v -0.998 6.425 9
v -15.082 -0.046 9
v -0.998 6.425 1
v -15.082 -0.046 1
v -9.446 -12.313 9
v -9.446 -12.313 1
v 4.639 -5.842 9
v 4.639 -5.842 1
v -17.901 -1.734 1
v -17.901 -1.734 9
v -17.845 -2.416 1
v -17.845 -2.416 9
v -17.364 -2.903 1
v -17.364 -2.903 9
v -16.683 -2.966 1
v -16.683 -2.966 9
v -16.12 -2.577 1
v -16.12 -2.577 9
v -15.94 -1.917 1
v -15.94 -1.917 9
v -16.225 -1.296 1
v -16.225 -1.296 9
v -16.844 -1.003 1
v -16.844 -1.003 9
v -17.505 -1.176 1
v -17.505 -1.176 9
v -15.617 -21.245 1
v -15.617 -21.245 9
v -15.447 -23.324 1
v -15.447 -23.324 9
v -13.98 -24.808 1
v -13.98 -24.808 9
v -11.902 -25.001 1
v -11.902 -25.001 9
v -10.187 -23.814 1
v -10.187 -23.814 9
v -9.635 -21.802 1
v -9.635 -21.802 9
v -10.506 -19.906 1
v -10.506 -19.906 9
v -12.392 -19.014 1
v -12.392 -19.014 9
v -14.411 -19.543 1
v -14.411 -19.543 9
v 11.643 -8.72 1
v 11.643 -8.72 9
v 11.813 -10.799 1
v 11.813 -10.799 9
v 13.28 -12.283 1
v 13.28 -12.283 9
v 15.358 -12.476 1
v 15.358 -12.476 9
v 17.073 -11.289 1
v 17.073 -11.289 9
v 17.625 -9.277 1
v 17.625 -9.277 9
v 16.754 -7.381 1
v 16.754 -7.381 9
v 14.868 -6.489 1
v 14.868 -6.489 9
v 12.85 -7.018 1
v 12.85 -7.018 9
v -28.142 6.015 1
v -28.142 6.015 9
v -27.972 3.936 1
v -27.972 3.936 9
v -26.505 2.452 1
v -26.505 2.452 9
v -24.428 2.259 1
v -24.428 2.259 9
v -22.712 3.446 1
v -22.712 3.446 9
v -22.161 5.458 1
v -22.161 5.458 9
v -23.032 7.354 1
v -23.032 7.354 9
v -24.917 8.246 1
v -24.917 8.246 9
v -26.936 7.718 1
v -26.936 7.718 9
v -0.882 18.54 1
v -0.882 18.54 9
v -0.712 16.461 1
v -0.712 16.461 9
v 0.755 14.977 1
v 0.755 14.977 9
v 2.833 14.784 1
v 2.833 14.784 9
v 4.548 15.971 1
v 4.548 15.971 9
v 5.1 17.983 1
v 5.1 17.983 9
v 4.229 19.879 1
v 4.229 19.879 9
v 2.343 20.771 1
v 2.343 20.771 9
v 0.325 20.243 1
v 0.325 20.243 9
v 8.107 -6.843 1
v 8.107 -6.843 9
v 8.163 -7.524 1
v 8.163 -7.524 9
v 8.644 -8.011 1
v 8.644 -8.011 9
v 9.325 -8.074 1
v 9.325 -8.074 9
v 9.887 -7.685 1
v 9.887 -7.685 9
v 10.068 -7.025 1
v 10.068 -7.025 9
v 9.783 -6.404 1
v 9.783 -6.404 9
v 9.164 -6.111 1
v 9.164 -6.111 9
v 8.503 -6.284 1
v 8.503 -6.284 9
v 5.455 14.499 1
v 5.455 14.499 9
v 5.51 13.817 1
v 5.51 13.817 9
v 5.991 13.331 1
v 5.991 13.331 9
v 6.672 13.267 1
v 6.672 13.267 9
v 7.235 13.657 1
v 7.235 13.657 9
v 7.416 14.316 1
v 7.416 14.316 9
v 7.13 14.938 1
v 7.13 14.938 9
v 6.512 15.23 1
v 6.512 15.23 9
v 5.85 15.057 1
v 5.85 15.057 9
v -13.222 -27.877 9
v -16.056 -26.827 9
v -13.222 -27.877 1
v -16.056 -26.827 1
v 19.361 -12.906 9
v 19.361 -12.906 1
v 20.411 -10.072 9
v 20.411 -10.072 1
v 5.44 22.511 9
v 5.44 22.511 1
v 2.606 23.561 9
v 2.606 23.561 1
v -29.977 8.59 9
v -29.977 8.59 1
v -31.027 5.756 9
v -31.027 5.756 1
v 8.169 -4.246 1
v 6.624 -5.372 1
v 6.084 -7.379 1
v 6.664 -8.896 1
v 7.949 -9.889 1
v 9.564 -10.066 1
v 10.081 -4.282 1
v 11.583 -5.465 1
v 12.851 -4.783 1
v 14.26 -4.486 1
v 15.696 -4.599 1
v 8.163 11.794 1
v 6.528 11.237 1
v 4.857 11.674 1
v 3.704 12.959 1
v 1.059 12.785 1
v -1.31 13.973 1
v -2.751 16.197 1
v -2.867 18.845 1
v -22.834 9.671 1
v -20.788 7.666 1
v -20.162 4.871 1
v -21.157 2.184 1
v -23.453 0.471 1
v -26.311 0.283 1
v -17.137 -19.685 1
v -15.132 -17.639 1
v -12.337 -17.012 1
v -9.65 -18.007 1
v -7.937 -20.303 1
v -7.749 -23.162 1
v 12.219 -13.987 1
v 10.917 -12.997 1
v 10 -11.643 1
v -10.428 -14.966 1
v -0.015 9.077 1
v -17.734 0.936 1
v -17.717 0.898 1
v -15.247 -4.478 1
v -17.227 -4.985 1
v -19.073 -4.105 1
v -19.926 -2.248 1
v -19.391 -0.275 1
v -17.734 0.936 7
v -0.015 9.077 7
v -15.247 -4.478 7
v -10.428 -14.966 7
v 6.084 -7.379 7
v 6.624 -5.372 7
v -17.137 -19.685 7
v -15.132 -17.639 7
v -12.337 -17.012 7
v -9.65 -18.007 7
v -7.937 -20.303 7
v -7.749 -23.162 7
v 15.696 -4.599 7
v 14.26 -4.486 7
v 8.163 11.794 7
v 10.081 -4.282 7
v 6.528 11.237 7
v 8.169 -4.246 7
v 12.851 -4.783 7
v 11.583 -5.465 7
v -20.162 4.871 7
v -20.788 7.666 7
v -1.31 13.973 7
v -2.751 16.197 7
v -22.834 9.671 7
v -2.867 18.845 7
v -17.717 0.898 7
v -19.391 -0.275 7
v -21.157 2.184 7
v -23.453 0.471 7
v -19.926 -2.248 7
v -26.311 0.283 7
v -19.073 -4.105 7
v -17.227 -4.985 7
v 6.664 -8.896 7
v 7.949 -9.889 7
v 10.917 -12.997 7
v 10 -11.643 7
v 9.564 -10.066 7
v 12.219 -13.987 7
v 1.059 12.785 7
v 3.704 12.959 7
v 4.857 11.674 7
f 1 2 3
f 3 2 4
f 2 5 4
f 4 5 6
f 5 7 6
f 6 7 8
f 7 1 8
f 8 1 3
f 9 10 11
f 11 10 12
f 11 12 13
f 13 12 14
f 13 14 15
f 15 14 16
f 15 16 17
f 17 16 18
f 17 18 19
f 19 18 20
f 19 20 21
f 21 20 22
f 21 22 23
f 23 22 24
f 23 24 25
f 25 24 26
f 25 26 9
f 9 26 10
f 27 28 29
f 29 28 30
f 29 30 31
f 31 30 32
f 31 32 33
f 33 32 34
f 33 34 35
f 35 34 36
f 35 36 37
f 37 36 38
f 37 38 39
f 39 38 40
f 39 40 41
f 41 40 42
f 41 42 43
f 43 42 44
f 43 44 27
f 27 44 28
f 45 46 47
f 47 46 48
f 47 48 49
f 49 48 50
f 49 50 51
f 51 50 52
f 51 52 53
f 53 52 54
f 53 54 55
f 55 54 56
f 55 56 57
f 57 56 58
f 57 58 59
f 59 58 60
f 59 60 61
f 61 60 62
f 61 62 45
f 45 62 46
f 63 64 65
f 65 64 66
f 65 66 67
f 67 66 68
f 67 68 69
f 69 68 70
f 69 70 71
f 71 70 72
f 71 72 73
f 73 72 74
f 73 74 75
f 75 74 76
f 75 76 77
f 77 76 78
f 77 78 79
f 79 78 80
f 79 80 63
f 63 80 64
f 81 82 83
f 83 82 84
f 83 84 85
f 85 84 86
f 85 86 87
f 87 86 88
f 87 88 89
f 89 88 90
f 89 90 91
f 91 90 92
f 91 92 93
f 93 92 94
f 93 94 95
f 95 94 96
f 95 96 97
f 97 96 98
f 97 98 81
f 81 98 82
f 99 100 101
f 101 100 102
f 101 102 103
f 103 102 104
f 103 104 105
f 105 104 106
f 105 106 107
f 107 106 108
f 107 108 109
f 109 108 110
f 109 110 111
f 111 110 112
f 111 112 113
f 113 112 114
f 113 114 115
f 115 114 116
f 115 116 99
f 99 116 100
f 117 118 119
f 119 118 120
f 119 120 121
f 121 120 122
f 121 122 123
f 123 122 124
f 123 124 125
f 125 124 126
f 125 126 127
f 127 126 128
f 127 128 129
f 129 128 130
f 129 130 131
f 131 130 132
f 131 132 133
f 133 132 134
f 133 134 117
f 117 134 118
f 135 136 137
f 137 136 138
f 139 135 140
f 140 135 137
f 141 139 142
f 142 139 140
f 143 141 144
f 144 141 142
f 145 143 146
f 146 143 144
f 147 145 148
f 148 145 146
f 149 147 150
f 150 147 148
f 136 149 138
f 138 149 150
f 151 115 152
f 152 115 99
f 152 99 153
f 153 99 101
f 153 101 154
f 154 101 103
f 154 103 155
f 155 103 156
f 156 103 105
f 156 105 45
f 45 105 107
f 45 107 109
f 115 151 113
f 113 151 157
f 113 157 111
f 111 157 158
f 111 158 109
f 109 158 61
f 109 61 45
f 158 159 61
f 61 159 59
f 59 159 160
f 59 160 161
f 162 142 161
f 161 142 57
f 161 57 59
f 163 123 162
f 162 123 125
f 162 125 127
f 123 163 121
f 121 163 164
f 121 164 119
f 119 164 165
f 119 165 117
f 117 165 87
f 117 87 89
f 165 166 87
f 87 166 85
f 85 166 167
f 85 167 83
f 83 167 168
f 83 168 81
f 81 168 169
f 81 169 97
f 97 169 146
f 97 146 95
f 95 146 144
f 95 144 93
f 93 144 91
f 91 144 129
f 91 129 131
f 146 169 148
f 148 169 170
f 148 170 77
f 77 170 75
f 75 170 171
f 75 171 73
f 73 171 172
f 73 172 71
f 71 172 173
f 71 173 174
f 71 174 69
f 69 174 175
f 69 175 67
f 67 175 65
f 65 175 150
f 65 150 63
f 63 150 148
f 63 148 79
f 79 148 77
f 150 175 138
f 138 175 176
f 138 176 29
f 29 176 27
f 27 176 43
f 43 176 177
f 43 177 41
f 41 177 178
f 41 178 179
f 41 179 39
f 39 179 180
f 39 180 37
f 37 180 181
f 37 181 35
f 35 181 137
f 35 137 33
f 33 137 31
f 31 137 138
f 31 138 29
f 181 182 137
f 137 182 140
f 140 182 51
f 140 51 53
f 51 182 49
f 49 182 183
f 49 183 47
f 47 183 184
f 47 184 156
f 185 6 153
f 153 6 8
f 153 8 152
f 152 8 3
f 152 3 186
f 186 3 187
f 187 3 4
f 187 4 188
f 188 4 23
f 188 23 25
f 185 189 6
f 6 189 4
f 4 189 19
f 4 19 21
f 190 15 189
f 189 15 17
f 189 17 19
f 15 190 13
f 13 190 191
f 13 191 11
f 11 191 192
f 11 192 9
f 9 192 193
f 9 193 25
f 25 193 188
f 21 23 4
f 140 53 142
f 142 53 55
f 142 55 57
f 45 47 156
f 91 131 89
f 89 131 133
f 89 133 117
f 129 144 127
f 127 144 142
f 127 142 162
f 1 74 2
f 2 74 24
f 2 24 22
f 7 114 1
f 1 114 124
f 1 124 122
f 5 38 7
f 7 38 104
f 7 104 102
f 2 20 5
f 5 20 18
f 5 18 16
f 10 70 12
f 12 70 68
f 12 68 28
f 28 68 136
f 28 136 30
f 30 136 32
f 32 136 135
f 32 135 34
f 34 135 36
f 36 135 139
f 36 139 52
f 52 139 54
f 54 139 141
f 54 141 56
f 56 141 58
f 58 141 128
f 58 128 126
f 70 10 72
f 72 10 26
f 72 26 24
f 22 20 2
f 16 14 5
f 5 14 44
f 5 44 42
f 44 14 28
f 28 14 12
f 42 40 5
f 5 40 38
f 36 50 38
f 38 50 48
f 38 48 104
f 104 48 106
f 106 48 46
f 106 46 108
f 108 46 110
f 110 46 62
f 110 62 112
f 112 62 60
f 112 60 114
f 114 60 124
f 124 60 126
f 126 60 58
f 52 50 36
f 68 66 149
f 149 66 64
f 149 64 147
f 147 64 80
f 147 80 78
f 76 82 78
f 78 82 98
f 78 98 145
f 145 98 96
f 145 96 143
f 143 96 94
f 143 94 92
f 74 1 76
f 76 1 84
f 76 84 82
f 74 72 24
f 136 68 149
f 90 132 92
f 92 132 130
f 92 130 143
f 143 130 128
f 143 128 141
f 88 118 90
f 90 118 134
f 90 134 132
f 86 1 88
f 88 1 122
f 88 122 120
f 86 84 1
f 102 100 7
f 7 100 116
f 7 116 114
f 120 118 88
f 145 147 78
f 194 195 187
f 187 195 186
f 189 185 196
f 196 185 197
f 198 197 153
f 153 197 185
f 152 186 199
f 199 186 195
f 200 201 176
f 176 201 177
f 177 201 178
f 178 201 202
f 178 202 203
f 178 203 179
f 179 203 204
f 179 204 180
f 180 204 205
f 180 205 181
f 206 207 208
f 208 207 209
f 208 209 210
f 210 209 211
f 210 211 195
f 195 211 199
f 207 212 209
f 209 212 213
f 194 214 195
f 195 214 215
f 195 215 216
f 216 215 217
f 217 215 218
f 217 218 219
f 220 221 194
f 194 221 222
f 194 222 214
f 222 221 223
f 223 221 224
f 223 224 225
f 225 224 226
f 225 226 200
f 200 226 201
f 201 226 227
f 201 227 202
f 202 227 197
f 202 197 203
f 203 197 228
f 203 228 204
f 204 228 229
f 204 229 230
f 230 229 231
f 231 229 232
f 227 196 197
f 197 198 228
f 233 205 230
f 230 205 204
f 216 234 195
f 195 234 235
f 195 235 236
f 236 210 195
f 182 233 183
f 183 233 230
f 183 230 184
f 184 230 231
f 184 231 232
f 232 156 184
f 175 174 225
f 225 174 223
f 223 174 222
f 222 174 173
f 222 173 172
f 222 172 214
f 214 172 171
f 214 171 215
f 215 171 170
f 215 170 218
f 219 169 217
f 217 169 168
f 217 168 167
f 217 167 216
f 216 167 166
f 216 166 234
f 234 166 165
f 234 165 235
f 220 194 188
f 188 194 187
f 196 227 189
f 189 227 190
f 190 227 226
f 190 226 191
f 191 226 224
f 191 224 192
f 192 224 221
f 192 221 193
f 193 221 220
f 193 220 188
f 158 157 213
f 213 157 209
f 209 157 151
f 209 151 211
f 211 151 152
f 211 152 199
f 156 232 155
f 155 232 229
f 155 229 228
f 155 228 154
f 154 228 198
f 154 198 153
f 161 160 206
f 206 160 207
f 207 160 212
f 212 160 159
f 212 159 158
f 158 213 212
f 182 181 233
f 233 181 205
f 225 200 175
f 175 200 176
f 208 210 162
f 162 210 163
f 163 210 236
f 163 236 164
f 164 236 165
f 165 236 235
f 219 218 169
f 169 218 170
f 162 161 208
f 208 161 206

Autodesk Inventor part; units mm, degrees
ref_plane "YZ Plane" through (0, 0, 0) normal (1, 0, 0) x (0, 1, 0)
ref_plane "XZ Plane" through (0, 0, 0) normal (0, 1, 0) x (-1, 0, 0)
ref_plane "XY Plane" through (0, 0, 0) normal (0, 0, 1) x (1, 0, 0)
ref_plane "Work Plane1" through (0, 0, 0) normal (0, 0, 1) x (1, 0, 0)
ref_plane "Work Plane2" through (13.4154, -42.9082, 9) normal (0, 0, -1) x (-0.9086751, -0.417504, 0)
sketch "Sketch1" plane through (13.4154, -42.9082, 9) normal (0, 0, -1) x (-0.9086751, -0.417504, 0)
  line L0 (20.066, 26.9166) -> (20.066, 62.7742) projected
  line L1 (20.066, 62.7742) -> (17.9288, 64.9114) projected
  line L2 (17.9288, 64.9114) -> (-17.9288, 64.9114) projected
  line L3 (-17.9288, 64.9114) -> (-20.066, 62.7742) projected
  line L4 (-20.066, 62.7742) -> (-20.066, 26.9166) projected
  line L5 (-20.066, 26.9166) -> (-17.9288, 24.7794) projected
  line L6 (-17.9288, 24.7794) -> (17.9288, 24.7794) projected
  line L7 (17.9288, 24.7794) -> (20.066, 26.9166) projected
  circle A0 centre (-15, 59.8454) radius 3.2639 projected
  circle A1 centre (15, 59.8454) radius 3.2639 projected
  circle A2 centre (-15, 29.8455) radius 3.2639 projected
  circle A3 centre (15, 29.8455) radius 3.2639 projected
  circle A4 centre (0, 44.8454) radius 13.3985 projected
  line L8 (8, 50.8454) -> (-7.5, 50.8454) construction
  line L9 (-7.5, 50.8454) -> (-7.5, 37.3454) construction
  line L10 (-7.5, 37.3454) -> (8, 37.3454) construction
  line L11 (8, 37.3454) -> (8, 50.8454) construction
  circle A5 centre (-17.5, 54.8454) radius 1 construction
  circle A6 centre (-11, 34.3454) radius 1 construction
  circle A7 centre (10.5, 49.8454) radius 1 construction
  arc A8 (-15.8555, 56.5454) -> (-16.8555, 57.5454) centre (-16.8555, 56.5454) ccw construction
  line L12 (-15.8555, 56.5454) -> (-15.8555, 53.8078) construction
  arc A9 (-15.8555, 53.8078) -> (-14.8555, 52.8078) centre (-14.8555, 53.8078) ccw construction
  line L13 (-14.8555, 52.8078) -> (12, 52.8078) construction
  arc A10 (13, 51.8078) -> (12, 52.8078) centre (12, 51.8078) ccw construction
  line L14 (13, 51.8078) -> (13, 49.2425) construction
  arc A11 (12, 48.2425) -> (13, 49.2425) centre (12, 49.2425) ccw construction
  line L15 (12, 48.2425) -> (11, 48.2425) construction
  arc A12 (11, 48.2425) -> (10, 47.2425) centre (11, 47.2425) ccw construction
  line L16 (10, 47.2425) -> (10, 35.7078) construction
  line L17 (10, 35.7078) -> (-8.4723, 35.7078) construction
  arc A13 (-8.4723, 35.7078) -> (-9.4723, 34.7078) centre (-8.4723, 34.7078) ccw construction
  line L18 (-9.4723, 34.7078) -> (-9.4723, 32.8454) construction
  arc A14 (-10.4723, 31.8454) -> (-9.4723, 32.8454) centre (-10.4723, 32.8454) ccw construction
  line L19 (-10.4723, 31.8454) -> (-20, 31.8454) construction
  line L20 (-20, 31.8454) -> (-20, 57.5454) construction
  line L21 (-20, 57.5454) -> (-16.8555, 57.5454) construction
  line L22 (8, 37.3454) -> (-7.5, 37.3454)
  line L23 (-7.5, 37.3454) -> (-7.5, 50.8454)
  line L24 (-7.5, 50.8454) -> (8, 50.8454)
  line L25 (8, 50.8454) -> (8, 37.3454)
  circle A15 centre (10.5, 49.8454) radius 1
  circle A16 centre (-17.5, 54.8454) radius 1
  circle A17 centre (-11, 34.3454) radius 1
  circle A18 centre (15, 29.8455) radius 3.05
  circle A19 centre (-15, 29.8455) radius 3.05
  circle A20 centre (-15, 59.8454) radius 3.05
  circle A21 centre (15, 59.8454) radius 3.05
  point P0 (-5.7241, 44.5906)
  dimension "d2" = 6.1
  dimension "d3" = 6.1
  dimension "d4" = 6.1
  dimension "d5" = 6.1
extrude "Extrusion1" add sketch "Sketch1" along normal blind 8 contours L7 L6 L5 L4 L3 L2 L1 L0 | A0 | A1 | A2 | A3 | A4
shell "Shell1" thickness 2 removed faces 1 at (-8.0461, 9.7896, 1)
properties part number "10_Adapter_KES400_Thorlabs"
